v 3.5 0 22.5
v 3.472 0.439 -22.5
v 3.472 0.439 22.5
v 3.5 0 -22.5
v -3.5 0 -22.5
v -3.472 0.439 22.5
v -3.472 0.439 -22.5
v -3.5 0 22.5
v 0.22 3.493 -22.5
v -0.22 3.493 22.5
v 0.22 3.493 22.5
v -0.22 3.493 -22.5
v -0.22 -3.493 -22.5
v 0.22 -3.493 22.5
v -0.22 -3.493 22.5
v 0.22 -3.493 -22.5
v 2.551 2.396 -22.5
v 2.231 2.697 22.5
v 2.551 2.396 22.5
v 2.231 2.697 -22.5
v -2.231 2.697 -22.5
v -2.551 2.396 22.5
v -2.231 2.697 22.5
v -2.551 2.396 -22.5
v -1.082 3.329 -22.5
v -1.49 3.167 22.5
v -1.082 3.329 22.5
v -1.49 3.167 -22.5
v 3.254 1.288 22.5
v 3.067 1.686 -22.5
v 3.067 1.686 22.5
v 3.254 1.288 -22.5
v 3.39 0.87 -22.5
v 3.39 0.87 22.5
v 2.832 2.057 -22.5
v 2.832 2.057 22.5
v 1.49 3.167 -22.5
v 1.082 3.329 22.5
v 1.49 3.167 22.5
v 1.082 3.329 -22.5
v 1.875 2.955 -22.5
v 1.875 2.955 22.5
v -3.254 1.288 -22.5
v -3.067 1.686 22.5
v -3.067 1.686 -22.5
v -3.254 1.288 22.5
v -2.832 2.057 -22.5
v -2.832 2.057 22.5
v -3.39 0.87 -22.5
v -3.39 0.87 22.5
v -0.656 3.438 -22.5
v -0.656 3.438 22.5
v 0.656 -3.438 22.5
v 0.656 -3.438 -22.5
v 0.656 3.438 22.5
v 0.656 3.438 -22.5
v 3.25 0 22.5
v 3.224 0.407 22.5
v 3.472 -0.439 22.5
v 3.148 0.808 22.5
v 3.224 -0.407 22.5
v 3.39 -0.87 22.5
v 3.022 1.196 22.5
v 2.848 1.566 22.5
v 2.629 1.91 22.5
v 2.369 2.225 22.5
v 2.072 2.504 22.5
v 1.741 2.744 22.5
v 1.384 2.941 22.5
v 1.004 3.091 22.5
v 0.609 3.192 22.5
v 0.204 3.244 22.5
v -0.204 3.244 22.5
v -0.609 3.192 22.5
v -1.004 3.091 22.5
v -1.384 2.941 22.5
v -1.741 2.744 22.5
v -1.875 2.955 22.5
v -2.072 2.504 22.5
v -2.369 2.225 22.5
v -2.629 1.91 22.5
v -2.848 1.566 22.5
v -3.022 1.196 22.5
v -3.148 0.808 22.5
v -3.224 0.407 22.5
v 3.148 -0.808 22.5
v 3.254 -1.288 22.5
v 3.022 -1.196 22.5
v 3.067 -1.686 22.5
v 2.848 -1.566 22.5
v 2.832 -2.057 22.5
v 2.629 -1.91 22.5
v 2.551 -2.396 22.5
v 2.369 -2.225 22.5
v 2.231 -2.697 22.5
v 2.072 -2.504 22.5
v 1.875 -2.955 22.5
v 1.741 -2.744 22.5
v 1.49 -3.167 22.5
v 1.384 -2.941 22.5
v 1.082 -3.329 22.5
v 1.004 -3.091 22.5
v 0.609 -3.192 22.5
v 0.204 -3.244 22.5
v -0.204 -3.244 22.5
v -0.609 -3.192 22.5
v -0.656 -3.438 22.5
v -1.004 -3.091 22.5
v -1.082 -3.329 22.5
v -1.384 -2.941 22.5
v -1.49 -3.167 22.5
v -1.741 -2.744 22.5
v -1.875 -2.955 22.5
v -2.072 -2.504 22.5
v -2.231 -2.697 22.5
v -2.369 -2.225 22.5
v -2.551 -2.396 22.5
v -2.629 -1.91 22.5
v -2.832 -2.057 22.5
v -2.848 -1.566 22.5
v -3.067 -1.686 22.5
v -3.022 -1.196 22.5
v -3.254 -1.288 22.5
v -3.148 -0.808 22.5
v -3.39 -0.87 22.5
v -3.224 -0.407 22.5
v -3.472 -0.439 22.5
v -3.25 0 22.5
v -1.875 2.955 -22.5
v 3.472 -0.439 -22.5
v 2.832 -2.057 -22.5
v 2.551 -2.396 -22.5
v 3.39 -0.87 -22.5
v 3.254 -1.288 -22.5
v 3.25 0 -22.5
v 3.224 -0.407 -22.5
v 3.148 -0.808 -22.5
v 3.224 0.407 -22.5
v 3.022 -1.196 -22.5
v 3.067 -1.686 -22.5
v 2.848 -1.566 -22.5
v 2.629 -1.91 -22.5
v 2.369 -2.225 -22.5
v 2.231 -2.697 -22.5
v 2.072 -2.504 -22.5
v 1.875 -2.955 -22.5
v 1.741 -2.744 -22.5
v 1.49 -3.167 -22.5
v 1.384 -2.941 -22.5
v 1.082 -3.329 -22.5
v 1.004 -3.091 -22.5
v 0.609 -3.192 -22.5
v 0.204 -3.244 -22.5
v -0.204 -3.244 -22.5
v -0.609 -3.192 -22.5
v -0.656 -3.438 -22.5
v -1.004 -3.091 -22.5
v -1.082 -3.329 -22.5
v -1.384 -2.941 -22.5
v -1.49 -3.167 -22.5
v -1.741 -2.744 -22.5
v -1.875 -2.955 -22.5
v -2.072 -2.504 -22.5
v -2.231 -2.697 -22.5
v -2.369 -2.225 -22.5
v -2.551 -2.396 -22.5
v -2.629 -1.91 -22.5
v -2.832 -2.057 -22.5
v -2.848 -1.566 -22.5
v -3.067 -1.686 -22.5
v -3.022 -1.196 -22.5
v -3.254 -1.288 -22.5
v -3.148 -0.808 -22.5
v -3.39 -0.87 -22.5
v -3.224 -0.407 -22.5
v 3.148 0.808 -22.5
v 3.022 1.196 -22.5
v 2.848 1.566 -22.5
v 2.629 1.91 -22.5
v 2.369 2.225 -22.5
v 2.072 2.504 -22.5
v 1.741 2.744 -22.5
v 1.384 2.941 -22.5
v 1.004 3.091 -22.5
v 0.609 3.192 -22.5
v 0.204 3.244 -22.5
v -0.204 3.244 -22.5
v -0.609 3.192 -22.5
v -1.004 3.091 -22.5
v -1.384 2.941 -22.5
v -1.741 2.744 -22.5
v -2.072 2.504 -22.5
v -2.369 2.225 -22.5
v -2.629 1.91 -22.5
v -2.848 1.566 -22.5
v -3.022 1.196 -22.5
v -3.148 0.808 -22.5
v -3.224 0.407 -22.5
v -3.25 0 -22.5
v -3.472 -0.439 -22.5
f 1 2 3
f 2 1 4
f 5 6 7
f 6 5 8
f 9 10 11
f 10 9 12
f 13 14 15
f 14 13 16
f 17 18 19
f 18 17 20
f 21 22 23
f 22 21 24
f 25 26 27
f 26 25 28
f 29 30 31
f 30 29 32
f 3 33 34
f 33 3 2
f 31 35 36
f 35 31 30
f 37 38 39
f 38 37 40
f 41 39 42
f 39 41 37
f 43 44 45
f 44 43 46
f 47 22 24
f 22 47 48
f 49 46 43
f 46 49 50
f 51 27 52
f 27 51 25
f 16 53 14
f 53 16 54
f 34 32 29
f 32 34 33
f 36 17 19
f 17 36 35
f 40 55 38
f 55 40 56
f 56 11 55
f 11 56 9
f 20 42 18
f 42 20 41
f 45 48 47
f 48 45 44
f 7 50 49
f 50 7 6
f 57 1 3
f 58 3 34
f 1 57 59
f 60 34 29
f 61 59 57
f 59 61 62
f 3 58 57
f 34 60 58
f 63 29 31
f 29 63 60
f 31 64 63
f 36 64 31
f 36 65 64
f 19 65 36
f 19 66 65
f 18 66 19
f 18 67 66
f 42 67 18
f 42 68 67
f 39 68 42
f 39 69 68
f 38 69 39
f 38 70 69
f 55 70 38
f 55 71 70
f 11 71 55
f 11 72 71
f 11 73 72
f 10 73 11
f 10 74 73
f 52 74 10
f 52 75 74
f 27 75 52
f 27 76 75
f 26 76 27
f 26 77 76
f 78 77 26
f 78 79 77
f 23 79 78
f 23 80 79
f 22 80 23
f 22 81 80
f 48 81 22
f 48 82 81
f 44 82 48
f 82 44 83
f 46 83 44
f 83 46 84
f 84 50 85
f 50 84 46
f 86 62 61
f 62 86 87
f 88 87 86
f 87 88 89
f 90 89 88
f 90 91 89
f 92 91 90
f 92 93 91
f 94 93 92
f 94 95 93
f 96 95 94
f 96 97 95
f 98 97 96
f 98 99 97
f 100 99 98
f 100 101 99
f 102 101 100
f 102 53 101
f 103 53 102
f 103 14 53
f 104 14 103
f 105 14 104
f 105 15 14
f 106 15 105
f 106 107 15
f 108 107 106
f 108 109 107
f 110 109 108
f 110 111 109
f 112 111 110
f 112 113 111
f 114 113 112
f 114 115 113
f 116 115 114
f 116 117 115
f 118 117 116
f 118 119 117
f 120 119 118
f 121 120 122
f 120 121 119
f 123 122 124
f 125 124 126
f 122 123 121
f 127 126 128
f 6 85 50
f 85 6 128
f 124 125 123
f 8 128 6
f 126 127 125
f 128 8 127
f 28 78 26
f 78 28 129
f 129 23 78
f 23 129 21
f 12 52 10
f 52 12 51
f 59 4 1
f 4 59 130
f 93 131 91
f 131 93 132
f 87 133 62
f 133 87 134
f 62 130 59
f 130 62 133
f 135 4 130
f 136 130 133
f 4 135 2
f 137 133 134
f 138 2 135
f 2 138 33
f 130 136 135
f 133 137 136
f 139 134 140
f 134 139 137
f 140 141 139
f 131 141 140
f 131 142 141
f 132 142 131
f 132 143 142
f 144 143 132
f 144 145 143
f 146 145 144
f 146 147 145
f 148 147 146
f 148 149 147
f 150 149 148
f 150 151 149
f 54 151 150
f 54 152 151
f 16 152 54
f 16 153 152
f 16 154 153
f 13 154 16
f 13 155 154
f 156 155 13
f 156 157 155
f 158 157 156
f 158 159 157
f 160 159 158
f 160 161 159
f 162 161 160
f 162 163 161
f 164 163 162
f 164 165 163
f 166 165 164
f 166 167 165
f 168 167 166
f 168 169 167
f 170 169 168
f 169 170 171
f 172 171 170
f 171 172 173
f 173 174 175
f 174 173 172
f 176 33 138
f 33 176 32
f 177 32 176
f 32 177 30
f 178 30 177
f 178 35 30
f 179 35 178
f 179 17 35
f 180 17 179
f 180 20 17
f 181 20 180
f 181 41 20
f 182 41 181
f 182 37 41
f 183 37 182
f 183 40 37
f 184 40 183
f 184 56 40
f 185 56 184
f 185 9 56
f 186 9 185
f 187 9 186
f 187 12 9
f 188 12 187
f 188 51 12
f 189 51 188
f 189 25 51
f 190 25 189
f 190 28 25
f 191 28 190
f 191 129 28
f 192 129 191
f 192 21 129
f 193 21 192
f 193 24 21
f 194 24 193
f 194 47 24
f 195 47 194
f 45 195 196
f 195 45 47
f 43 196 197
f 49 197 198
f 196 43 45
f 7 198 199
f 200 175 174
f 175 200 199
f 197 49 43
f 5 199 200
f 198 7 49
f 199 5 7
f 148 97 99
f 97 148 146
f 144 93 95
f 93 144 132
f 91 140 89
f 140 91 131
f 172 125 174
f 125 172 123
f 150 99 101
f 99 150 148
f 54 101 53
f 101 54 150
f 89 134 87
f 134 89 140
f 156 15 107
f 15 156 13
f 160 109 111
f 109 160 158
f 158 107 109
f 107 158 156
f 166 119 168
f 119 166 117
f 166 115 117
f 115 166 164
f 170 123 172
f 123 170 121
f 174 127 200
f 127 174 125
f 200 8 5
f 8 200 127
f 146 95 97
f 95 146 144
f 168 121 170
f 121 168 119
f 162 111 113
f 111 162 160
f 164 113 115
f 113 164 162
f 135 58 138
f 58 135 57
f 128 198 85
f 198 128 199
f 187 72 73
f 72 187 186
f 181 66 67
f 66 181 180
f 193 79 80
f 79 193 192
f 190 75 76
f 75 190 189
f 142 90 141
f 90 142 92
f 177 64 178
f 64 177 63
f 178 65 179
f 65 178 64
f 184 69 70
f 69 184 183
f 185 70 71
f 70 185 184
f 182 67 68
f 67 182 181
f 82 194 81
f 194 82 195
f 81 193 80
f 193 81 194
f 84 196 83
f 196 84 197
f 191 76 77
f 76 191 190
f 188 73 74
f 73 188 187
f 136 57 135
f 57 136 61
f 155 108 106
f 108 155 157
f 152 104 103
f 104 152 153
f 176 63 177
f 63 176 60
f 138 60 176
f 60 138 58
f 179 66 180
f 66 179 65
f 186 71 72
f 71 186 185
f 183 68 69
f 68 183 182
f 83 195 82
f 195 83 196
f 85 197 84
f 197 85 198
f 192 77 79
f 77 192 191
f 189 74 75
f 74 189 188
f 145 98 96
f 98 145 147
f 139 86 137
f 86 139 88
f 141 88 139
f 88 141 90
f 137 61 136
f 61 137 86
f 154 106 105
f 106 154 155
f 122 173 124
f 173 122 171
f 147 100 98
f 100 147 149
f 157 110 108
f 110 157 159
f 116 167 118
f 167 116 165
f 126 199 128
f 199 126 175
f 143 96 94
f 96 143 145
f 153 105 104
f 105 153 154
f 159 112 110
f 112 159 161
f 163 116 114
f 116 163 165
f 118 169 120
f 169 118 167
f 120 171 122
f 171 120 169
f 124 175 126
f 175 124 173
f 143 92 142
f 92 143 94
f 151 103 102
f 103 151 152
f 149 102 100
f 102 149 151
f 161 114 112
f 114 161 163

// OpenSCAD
$fn = 50;


difference() {
	union() {
		translate(v = [0, 0, -22.5000000000]) {
			cylinder(h = 45, r = 3.5000000000);
		}
	}
	union() {
		translate(v = [0, 0, -100.0000000000]) {
			cylinder(h = 200, r = 3.2500000000);
		}
	}
}
